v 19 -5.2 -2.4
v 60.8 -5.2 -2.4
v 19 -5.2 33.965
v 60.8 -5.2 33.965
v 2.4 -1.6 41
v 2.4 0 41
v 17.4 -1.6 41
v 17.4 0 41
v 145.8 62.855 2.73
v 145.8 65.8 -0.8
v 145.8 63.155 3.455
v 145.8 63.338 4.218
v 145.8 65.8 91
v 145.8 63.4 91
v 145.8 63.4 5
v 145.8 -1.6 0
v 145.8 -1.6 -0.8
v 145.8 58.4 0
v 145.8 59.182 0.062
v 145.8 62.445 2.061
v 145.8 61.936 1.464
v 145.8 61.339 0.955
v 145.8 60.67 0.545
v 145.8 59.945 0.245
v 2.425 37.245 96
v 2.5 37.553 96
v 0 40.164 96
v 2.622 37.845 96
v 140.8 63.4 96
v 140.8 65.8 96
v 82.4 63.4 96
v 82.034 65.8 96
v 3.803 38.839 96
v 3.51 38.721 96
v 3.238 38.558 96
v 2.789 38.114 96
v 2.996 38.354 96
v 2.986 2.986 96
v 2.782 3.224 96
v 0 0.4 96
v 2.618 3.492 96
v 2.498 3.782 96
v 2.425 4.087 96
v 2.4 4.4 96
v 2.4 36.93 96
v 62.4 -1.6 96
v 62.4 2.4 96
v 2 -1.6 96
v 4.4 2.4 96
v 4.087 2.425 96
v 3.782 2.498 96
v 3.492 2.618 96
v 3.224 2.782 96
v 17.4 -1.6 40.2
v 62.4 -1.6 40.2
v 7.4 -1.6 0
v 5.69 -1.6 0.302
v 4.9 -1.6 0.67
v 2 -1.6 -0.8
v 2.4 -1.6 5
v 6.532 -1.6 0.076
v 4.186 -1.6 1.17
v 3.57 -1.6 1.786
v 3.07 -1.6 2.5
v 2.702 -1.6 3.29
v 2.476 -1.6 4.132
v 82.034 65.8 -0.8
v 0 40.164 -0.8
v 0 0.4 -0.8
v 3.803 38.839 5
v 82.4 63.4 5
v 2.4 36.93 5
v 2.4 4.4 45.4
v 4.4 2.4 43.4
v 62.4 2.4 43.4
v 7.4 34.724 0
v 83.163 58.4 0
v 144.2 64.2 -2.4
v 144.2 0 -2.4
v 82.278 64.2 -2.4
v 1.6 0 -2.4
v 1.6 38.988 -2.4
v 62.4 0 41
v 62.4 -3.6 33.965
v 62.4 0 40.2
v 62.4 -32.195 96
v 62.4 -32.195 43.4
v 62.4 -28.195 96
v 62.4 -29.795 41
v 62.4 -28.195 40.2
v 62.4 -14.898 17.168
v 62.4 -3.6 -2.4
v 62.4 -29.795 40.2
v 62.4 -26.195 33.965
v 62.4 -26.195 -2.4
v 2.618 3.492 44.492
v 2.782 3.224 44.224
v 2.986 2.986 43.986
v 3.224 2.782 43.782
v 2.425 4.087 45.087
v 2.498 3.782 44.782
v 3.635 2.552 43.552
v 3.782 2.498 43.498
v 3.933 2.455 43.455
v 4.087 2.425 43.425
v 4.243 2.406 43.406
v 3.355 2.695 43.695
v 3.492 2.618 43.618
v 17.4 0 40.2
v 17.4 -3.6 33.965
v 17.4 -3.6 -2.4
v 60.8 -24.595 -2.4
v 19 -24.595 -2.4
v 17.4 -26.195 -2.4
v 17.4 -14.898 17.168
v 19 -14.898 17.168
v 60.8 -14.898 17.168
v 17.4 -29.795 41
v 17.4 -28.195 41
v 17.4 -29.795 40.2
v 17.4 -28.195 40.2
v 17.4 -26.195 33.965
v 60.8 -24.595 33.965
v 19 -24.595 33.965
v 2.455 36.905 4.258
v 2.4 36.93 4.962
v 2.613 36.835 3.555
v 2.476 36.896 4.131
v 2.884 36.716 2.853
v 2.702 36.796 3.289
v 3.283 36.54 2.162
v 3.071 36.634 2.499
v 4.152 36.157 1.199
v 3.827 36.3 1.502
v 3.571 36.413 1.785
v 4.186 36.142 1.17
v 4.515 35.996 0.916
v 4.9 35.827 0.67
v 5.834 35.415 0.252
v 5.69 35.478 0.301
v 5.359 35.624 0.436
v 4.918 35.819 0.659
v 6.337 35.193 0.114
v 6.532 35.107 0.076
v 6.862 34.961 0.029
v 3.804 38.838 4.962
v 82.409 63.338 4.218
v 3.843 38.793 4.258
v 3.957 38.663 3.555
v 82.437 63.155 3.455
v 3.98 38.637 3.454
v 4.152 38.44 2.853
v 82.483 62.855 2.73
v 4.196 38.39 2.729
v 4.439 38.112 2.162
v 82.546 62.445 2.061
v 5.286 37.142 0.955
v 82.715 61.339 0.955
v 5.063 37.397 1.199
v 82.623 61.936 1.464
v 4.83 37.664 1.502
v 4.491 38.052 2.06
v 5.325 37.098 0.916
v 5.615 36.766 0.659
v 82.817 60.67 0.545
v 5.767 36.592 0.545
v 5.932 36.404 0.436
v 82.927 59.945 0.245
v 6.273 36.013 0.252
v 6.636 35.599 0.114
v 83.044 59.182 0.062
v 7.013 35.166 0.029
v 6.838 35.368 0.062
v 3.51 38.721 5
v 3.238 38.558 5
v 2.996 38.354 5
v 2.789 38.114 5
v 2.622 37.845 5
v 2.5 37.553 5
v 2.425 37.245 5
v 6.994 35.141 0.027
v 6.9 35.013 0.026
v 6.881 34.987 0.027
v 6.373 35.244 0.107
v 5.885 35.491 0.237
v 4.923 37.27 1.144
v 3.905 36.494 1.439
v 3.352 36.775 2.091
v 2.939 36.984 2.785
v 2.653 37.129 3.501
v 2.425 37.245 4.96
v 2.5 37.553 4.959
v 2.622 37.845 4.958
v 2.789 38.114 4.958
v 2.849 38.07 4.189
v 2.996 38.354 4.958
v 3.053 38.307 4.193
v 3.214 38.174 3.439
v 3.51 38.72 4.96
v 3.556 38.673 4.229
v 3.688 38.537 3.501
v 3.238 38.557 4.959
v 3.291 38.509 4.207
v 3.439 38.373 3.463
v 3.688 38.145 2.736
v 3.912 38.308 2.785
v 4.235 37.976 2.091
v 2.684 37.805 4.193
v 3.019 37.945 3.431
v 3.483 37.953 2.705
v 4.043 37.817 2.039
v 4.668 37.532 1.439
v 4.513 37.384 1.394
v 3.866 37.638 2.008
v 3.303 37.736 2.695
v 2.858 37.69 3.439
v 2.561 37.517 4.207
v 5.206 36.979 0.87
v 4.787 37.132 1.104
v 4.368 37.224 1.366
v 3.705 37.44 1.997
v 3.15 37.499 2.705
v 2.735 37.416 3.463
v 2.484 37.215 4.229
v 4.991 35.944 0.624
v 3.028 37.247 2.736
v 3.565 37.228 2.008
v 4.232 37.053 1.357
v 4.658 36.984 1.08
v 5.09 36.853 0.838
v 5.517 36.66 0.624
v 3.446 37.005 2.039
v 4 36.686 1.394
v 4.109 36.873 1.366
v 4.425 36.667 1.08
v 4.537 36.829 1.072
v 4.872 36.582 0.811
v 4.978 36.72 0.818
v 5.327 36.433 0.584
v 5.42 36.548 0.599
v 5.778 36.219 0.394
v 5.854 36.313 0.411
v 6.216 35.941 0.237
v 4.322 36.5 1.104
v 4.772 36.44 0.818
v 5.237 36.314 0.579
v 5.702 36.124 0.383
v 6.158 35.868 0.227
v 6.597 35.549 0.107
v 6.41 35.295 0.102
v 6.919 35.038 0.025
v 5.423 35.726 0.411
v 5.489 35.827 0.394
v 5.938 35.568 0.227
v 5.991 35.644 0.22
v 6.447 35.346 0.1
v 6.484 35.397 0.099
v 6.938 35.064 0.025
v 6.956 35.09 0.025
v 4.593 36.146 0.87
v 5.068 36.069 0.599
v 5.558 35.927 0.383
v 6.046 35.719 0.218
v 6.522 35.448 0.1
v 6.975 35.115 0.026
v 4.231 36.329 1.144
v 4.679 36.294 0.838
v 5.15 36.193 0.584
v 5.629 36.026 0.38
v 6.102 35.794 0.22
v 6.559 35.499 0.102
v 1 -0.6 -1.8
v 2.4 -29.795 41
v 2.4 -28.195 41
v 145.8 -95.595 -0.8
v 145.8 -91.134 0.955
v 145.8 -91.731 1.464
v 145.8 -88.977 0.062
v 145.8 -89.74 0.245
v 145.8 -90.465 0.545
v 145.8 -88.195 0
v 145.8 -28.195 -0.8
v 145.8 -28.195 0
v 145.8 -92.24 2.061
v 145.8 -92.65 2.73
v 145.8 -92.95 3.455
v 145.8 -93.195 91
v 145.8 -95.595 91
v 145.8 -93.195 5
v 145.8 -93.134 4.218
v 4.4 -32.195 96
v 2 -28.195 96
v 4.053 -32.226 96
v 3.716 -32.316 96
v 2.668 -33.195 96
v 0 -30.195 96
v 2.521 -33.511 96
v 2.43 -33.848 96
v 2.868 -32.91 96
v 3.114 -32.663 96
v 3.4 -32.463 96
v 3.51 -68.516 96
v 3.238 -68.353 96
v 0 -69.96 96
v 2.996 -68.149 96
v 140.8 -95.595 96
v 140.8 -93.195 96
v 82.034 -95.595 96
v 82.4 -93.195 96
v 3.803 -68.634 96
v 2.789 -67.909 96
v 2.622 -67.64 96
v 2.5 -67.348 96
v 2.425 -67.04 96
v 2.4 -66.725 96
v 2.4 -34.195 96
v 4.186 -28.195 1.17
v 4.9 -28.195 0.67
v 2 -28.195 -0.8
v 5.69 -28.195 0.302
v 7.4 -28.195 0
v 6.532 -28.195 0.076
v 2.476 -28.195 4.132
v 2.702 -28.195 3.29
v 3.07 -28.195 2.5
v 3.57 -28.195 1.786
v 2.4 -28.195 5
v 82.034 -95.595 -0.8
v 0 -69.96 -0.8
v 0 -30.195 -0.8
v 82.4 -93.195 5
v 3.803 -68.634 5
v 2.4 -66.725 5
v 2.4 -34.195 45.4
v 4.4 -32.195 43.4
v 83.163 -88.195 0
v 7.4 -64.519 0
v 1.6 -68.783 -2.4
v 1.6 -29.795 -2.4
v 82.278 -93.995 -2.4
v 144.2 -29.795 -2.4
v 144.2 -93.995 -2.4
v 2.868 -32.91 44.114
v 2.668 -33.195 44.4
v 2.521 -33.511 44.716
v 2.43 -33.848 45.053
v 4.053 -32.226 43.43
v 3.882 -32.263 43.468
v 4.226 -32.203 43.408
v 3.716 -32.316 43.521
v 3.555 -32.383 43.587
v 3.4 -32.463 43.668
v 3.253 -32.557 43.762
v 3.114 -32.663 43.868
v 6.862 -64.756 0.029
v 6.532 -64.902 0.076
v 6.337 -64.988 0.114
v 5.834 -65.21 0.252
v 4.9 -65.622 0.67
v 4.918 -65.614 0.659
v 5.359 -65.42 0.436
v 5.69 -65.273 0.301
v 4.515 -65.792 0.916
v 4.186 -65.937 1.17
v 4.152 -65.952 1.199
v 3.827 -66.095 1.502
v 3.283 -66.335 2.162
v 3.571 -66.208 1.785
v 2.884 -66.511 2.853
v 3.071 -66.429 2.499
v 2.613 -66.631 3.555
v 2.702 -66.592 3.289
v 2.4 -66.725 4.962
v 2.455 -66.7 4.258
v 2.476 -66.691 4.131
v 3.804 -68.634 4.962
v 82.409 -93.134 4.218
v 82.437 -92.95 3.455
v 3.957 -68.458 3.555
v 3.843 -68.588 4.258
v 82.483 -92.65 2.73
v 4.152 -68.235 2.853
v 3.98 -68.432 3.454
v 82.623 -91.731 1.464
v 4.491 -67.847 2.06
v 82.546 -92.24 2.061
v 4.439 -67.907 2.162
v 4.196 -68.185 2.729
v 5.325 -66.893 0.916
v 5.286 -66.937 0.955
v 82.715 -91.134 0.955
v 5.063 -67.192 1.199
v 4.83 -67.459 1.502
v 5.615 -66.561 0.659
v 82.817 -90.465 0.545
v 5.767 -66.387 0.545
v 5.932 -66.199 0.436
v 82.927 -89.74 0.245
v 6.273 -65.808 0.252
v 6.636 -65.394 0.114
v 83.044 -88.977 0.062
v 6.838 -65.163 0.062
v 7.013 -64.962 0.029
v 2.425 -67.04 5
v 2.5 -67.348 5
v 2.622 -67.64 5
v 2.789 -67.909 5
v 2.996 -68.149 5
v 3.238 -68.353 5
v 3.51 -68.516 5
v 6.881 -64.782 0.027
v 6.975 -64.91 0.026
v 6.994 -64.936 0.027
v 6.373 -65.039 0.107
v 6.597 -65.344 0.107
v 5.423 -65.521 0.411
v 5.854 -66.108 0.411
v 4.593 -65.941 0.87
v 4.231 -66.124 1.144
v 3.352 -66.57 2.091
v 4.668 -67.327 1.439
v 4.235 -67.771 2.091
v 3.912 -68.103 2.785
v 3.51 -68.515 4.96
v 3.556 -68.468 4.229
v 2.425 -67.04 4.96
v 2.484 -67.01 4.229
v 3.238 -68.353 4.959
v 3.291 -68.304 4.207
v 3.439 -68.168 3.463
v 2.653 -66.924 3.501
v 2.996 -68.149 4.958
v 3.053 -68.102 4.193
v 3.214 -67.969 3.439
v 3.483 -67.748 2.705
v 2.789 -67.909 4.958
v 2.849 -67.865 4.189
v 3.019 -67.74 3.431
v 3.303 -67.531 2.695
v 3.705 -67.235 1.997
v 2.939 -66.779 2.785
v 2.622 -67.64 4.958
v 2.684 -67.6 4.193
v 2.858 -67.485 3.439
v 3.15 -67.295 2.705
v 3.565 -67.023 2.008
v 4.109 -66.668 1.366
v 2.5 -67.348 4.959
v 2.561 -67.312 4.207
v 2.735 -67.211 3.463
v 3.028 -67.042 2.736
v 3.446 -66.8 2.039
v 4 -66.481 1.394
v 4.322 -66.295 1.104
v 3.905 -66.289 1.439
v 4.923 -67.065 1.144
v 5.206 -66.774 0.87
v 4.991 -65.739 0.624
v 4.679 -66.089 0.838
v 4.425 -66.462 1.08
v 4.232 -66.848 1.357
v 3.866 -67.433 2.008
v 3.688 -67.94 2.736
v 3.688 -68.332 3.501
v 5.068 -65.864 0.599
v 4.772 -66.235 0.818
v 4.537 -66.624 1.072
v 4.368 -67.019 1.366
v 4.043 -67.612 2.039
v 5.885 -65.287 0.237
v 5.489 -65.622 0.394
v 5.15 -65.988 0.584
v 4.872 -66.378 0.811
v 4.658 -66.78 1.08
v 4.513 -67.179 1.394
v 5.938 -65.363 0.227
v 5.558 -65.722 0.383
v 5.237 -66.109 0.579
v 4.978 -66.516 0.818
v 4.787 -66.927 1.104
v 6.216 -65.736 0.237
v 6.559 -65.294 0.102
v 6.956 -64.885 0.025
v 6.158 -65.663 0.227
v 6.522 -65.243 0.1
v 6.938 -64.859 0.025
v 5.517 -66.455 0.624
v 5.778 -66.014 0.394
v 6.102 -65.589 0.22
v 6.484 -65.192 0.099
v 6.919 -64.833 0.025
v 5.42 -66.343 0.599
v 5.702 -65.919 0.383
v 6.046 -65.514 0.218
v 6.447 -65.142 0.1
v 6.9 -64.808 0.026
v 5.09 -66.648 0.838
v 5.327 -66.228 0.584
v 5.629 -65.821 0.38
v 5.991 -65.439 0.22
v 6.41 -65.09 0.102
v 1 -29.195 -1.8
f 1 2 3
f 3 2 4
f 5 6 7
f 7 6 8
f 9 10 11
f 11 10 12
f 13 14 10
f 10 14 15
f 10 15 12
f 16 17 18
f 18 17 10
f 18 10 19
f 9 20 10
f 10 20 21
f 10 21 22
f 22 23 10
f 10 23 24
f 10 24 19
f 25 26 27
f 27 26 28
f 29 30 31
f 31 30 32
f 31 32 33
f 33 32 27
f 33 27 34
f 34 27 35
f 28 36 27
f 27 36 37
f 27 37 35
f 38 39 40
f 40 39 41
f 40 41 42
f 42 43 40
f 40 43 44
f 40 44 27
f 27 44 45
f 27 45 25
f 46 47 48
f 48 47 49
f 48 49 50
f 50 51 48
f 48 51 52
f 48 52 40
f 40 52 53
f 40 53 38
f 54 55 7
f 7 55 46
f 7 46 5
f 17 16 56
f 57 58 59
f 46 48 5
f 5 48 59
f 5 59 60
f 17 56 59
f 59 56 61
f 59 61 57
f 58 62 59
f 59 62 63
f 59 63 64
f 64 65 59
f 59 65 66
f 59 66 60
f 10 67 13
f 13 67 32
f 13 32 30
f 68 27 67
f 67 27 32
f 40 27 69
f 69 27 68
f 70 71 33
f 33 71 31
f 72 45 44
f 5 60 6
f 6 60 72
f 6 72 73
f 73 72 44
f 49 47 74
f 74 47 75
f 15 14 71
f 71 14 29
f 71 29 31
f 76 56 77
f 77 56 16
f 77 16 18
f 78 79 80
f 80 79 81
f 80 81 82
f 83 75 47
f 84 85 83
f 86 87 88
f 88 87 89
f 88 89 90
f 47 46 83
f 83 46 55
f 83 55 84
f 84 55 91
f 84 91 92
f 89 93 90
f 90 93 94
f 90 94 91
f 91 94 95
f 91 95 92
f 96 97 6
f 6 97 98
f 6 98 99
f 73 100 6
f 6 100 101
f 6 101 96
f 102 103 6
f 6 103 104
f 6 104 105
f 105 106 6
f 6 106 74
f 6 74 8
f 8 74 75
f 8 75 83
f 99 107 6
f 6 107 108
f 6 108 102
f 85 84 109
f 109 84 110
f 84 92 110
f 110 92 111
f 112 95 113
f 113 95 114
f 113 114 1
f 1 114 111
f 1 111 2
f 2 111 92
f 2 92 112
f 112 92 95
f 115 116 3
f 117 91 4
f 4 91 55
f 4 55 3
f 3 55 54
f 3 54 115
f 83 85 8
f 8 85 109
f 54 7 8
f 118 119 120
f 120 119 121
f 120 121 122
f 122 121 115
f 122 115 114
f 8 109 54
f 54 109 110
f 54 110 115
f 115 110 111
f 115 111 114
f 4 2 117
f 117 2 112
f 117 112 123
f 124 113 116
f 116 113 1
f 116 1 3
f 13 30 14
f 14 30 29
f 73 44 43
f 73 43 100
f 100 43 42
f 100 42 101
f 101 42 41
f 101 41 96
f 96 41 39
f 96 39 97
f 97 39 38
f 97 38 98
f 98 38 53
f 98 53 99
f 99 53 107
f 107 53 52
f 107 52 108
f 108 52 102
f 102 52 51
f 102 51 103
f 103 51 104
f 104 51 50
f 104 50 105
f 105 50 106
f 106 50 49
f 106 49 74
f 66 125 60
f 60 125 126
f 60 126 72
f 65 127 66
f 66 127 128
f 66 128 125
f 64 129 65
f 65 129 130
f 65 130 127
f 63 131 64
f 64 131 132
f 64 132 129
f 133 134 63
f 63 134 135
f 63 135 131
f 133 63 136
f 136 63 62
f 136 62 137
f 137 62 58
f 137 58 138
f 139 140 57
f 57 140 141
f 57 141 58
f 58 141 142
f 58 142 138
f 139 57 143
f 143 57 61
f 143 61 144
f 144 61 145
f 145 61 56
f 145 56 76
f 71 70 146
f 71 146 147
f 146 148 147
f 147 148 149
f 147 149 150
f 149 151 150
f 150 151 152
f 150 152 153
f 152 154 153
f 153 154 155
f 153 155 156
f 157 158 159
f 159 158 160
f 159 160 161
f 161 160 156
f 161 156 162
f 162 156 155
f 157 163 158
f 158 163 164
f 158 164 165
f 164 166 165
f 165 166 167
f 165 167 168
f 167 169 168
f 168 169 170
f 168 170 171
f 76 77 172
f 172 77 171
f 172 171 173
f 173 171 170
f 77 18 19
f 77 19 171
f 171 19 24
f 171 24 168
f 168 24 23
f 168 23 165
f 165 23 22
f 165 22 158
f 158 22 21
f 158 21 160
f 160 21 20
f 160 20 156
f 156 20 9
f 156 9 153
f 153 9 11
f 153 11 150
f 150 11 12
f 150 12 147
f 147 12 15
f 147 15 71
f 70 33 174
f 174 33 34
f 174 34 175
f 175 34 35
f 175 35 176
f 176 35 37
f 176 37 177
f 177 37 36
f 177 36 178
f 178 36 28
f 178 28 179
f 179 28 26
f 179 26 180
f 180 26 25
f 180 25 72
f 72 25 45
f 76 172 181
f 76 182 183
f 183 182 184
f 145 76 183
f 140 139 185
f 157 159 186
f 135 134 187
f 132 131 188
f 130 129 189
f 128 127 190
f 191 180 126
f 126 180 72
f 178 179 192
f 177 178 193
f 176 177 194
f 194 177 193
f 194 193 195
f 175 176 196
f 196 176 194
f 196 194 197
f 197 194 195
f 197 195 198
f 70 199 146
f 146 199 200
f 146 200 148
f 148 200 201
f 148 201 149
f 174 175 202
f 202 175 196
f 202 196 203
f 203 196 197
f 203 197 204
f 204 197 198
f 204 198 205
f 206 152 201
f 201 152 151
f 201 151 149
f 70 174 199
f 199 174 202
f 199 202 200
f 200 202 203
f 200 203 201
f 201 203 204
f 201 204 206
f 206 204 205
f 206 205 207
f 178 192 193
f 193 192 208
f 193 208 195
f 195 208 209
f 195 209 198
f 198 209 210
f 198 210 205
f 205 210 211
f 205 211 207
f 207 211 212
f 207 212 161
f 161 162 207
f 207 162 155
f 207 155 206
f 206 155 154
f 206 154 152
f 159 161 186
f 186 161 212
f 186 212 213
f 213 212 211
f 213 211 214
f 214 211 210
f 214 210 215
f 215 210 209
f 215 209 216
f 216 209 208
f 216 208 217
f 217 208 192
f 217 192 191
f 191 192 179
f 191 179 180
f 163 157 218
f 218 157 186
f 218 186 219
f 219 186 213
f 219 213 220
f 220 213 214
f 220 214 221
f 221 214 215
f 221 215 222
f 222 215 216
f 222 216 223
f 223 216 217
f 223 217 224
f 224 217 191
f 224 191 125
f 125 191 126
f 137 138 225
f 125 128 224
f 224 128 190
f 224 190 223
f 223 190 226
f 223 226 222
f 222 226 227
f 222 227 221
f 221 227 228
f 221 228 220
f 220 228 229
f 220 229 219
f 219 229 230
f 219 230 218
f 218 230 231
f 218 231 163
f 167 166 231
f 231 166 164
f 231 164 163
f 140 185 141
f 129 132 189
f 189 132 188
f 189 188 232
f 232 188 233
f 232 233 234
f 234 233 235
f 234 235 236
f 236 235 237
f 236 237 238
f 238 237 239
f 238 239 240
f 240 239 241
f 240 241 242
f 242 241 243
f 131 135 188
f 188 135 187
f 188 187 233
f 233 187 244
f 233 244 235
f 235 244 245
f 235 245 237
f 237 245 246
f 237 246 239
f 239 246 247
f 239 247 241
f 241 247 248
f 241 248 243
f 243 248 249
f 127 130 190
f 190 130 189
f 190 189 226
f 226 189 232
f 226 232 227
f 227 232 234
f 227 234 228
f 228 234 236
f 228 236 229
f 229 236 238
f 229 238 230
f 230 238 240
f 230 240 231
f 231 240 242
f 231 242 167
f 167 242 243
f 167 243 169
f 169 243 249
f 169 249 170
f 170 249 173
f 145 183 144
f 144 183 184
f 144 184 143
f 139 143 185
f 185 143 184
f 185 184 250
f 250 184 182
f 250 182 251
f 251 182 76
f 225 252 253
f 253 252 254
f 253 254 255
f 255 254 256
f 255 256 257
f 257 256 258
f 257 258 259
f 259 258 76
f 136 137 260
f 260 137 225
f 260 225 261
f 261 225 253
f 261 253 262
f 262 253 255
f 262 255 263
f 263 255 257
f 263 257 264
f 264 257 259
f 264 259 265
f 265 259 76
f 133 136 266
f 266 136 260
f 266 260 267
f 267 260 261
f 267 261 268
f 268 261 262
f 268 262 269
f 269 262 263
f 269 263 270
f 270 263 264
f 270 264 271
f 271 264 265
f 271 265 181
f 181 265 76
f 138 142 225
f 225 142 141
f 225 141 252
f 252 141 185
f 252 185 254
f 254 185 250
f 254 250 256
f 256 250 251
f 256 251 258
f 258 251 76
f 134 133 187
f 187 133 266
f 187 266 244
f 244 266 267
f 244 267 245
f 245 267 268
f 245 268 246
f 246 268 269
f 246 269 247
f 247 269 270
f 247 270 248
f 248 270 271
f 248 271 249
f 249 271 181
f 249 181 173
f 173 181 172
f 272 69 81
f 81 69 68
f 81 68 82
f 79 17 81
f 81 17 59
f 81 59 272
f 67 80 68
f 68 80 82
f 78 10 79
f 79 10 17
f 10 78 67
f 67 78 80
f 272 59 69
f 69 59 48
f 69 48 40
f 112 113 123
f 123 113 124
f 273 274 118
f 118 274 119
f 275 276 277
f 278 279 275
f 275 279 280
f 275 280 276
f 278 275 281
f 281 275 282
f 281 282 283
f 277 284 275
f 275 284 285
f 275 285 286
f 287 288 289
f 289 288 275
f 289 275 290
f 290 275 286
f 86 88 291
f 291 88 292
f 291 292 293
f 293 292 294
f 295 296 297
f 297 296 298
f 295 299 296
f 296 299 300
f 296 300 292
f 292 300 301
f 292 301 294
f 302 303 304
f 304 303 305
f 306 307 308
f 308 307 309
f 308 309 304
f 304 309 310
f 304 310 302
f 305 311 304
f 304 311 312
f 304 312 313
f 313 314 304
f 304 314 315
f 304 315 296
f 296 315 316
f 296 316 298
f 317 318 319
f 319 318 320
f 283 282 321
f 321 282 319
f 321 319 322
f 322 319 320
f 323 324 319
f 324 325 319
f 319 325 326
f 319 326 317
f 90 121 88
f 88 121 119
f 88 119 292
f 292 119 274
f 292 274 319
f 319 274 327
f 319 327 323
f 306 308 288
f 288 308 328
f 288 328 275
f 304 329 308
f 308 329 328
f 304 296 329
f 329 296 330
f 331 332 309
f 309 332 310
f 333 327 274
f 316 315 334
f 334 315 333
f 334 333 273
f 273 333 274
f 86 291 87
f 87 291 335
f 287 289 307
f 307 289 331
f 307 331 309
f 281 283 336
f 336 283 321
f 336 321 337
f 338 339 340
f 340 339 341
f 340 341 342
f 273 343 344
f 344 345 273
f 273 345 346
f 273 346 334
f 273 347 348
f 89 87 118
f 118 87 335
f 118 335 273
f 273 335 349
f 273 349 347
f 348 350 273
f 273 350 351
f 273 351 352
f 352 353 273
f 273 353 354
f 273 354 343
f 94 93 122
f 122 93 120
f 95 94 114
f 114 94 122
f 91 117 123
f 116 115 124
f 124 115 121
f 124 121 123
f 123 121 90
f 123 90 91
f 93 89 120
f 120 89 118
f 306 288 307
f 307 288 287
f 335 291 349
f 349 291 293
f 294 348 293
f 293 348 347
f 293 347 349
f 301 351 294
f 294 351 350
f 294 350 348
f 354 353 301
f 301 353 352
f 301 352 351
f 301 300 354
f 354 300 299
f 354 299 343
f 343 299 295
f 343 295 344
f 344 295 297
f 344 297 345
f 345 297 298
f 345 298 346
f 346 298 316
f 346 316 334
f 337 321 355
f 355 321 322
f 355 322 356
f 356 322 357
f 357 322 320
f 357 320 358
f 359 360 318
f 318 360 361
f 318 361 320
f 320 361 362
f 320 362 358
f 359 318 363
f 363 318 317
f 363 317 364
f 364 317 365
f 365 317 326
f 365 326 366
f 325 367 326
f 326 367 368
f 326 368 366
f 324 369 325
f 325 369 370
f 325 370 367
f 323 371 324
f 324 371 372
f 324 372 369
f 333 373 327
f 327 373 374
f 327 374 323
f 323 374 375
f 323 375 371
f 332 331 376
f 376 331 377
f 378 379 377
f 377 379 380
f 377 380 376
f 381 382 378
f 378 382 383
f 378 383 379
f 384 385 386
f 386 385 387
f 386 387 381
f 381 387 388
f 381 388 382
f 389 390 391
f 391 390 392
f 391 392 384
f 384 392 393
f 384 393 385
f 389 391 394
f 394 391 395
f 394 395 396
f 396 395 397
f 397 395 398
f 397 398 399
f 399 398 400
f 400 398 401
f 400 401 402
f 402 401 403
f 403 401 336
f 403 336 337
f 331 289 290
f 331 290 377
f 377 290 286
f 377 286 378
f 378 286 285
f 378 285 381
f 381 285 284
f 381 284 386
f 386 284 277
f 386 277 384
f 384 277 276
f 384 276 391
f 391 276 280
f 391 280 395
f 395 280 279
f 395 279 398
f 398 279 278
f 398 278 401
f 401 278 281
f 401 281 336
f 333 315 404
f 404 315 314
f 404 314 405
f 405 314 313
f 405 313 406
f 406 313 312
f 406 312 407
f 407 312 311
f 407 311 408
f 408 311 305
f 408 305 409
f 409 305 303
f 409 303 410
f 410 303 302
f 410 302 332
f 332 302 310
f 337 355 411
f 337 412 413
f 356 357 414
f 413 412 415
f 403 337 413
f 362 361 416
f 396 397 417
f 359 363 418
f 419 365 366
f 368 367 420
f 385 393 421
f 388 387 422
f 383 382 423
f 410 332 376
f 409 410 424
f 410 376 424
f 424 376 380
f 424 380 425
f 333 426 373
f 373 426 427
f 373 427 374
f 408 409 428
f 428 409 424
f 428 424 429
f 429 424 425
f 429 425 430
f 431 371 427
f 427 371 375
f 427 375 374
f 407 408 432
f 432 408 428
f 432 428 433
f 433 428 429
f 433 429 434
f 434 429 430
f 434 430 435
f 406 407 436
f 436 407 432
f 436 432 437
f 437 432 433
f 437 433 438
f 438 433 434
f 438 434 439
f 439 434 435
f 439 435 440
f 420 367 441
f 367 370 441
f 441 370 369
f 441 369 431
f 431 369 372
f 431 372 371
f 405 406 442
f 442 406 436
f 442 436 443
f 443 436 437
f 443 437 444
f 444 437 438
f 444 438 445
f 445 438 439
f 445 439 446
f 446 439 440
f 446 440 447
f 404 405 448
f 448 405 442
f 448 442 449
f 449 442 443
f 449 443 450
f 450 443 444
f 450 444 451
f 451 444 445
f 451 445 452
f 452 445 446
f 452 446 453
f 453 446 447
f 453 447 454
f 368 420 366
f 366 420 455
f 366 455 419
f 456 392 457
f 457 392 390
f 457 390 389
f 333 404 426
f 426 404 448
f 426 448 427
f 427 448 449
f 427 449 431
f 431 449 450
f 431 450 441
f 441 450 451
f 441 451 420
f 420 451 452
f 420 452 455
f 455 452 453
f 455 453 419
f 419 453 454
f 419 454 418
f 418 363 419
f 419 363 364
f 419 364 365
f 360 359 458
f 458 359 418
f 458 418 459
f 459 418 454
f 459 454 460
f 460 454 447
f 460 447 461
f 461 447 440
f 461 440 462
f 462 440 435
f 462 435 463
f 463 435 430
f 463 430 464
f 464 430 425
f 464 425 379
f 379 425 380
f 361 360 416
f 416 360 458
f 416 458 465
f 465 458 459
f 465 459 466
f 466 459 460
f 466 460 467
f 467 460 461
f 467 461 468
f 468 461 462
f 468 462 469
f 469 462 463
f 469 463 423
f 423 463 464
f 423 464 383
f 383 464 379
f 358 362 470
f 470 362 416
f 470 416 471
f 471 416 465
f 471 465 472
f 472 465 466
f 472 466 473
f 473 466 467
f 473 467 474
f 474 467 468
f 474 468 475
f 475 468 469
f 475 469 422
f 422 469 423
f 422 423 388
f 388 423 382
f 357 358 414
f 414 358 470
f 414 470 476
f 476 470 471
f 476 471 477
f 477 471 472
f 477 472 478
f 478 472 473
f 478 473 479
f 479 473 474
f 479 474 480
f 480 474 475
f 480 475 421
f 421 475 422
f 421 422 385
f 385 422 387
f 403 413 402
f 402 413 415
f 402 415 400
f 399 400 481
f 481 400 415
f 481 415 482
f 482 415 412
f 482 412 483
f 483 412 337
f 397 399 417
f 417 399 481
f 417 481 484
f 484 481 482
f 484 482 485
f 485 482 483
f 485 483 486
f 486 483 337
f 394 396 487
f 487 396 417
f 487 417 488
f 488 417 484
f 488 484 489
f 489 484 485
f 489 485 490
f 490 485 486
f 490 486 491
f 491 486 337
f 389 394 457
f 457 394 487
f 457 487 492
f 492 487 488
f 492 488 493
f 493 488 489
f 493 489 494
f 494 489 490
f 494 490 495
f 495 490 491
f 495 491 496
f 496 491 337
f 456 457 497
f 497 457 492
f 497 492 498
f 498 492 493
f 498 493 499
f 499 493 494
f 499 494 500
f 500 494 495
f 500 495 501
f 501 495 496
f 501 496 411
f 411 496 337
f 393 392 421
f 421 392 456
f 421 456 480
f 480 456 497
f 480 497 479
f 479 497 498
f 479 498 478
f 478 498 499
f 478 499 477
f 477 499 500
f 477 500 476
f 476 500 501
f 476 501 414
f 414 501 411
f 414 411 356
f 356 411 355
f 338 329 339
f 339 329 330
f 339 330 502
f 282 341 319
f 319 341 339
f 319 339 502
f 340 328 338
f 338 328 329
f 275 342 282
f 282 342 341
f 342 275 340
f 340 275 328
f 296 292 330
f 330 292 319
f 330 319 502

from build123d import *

# Parameters (mm, degrees)
BOSS_EXTRUDE1_DEPTH = 96
BOSS_EXTRUDE2_DEPTH = 2.4
SKETCH3_W           = 2.4
SKETCH3_H           = 61
CUT_EXTRUDE1_DEPTH  = 96
SKETCH4_W           = 143.4
SKETCH4_H           = 41
CUT_EXTRUDE2_DEPTH  = 5
SKETCH9_W           = 83.4
SKETCH9_H           = 55
CUT_EXTRUDE4_DEPTH  = 5
CUT_EXTRUDE3_DEPTH  = 60
BOSS_EXTRUDE3_DEPTH = 45
BOSS_EXTRUDE4_DEPTH = 1.6
CHAMFER1_SIZE       = 5
FILLET1_R           = 2
FILLET3_R           = 5
FILLET4_R           = 2
CHAMFER2_SIZE       = 1.6
CHAMFER3_SIZE       = 2


with BuildPart() as part:
    # Sketch1 → Boss-Extrude1 (new body)
    with BuildSketch(Plane.XY):
        Polygon((145.8, 0), (145.8, 65.8), (82.033733785, 65.8), (0, 40.164458192), (0, 0), (0, -1.6), (145.8, -1.6), align=None)
        Polygon((2.4, 38.4), (2.4, 2.4), (143.4, 2.4), (143.4, 63.4), (82.4, 63.4), align=None, mode=Mode.SUBTRACT)
    extrude(amount=BOSS_EXTRUDE1_DEPTH)

    # Sketch2 → Boss-Extrude2 (add)
    with BuildSketch(Plane(origin=(0, 0, 0), x_dir=(-1, 0, 0), z_dir=(0, 0, -1))):
        Polygon((-145.8, 0), (-145.8, 65.8), (-82.033733785, 65.8), (0, 40.164458192), (0, 0), (0, -1.6), (-145.8, -1.6), align=None)
    extrude(amount=BOSS_EXTRUDE2_DEPTH)

    # Sketch3 → Cut-Extrude1 (cut)
    with BuildSketch(Plane.XY.offset(96)):
        with Locations((144.6, 32.9)):
            Rectangle(SKETCH3_W, SKETCH3_H)
    extrude(amount=-CUT_EXTRUDE1_DEPTH, mode=Mode.SUBTRACT)

    # Sketch4 → Cut-Extrude2 (cut, through all)
    with BuildSketch(Plane(origin=(0, 2.4, 0), x_dir=(1, 0, 0), z_dir=(0, 1, 0))):
        with Locations((74.1, -20.5)):
            Rectangle(SKETCH4_W, SKETCH4_H)
    extrude(amount=-CUT_EXTRUDE2_DEPTH, mode=Mode.SUBTRACT)

    # Sketch9 → Cut-Extrude4 (cut, through all)
    with BuildSketch(Plane(origin=(0, 2.4, 0), x_dir=(1, 0, 0), z_dir=(0, 1, 0))):
        with Locations((104.1, -68.5)):
            Rectangle(SKETCH9_W, SKETCH9_H)
    extrude(amount=-CUT_EXTRUDE4_DEPTH, mode=Mode.SUBTRACT)

    # Sketch5 → Cut-Extrude3 (cut)
    with BuildSketch(Plane(origin=(62.4, 0, 0), x_dir=(0, 0, -1), z_dir=(1, 0, 0))):
        Polygon((-41, 0), (-43.4, 2.4), (-41, 2.4), align=None)
    extrude(amount=-CUT_EXTRUDE3_DEPTH, mode=Mode.SUBTRACT)

    # Sketch6 → Boss-Extrude3 (add)
    with BuildSketch(Plane(origin=(62.4, 0, 0), x_dir=(0, 0, -1), z_dir=(1, 0, 0))):
        Polygon((-40.2, 0), (-41, 0), (-41, -1.6), (-40.2, -1.6), (-33.964617093, -5.2), (2.4, -5.2), (2.4, -3.6), (-33.964617093, -3.6), align=None)
    extrude(amount=-BOSS_EXTRUDE3_DEPTH)

    # Sketch8 → Boss-Extrude4 (add)
    with BuildSketch(Plane(origin=(62.4, 0, 0), x_dir=(0, 0, -1), z_dir=(1, 0, 0))):
        Polygon((-33.964617093, -5.2), (2.4, -26.195121467), (2.4, -5.2), align=None)
    boss_extrude4 = extrude(amount=-BOSS_EXTRUDE4_DEPTH)

    # Mirror1: Boss-Extrude4 across plane
    add(boss_extrude4.mirror(Plane(origin=(39.9, 0, 0), x_dir=(0, 0, 1), z_dir=(1, 0, 0))))

    # Chamfer1
    chamfer1_edges = [part.edges().sort_by_distance(p)[0] for p in [
        (145.8, 64.6, 96),
    ]]
    chamfer(chamfer1_edges, length=CHAMFER1_SIZE)

    # Fillet1
    fillet1_edges = [part.edges().sort_by_distance(p)[0] for p in [
        (2.4, 2.4, 69.7),
    ]]
    fillet(fillet1_edges, radius=FILLET1_R)

    # Fillet3
    fillet3_edges = [part.edges().sort_by_distance(p)[0] for p in [
        (42.4, 50.9, 0),
        (2.4, 18.4, 0),
        (114.1, 63.4, 0),
    ]]
    fillet(fillet3_edges, radius=FILLET3_R)

    # Fillet4
    fillet4_edges = [part.edges().sort_by_distance(p)[0] for p in [
        (2.4, 38.4, 50.5),
    ]]
    fillet(fillet4_edges, radius=FILLET4_R)

    # Chamfer2
    chamfer2_edges = [part.edges().sort_by_distance(p)[0] for p in [
        (145.8, 32.1, -2.4),
        (72.9, -1.6, -2.4),
        (0, 19.282229096, -2.4),
        (41.016866893, 52.982229096, -2.4),
        (113.916866893, 65.8, -2.4),
    ]]
    chamfer(chamfer2_edges, length=CHAMFER2_SIZE)

    # Chamfer3
    chamfer3_edges = [part.edges().sort_by_distance(p)[0] for p in [
        (0, -1.6, 47.6),
    ]]
    chamfer(chamfer3_edges, length=CHAMFER3_SIZE)

    # Mirror2: part across plane


with BuildPart() as part_1:
    add(part.part)
    add(part.part.mirror(Plane.ZX.offset(-14.897560734)))


solid = part_1.part
